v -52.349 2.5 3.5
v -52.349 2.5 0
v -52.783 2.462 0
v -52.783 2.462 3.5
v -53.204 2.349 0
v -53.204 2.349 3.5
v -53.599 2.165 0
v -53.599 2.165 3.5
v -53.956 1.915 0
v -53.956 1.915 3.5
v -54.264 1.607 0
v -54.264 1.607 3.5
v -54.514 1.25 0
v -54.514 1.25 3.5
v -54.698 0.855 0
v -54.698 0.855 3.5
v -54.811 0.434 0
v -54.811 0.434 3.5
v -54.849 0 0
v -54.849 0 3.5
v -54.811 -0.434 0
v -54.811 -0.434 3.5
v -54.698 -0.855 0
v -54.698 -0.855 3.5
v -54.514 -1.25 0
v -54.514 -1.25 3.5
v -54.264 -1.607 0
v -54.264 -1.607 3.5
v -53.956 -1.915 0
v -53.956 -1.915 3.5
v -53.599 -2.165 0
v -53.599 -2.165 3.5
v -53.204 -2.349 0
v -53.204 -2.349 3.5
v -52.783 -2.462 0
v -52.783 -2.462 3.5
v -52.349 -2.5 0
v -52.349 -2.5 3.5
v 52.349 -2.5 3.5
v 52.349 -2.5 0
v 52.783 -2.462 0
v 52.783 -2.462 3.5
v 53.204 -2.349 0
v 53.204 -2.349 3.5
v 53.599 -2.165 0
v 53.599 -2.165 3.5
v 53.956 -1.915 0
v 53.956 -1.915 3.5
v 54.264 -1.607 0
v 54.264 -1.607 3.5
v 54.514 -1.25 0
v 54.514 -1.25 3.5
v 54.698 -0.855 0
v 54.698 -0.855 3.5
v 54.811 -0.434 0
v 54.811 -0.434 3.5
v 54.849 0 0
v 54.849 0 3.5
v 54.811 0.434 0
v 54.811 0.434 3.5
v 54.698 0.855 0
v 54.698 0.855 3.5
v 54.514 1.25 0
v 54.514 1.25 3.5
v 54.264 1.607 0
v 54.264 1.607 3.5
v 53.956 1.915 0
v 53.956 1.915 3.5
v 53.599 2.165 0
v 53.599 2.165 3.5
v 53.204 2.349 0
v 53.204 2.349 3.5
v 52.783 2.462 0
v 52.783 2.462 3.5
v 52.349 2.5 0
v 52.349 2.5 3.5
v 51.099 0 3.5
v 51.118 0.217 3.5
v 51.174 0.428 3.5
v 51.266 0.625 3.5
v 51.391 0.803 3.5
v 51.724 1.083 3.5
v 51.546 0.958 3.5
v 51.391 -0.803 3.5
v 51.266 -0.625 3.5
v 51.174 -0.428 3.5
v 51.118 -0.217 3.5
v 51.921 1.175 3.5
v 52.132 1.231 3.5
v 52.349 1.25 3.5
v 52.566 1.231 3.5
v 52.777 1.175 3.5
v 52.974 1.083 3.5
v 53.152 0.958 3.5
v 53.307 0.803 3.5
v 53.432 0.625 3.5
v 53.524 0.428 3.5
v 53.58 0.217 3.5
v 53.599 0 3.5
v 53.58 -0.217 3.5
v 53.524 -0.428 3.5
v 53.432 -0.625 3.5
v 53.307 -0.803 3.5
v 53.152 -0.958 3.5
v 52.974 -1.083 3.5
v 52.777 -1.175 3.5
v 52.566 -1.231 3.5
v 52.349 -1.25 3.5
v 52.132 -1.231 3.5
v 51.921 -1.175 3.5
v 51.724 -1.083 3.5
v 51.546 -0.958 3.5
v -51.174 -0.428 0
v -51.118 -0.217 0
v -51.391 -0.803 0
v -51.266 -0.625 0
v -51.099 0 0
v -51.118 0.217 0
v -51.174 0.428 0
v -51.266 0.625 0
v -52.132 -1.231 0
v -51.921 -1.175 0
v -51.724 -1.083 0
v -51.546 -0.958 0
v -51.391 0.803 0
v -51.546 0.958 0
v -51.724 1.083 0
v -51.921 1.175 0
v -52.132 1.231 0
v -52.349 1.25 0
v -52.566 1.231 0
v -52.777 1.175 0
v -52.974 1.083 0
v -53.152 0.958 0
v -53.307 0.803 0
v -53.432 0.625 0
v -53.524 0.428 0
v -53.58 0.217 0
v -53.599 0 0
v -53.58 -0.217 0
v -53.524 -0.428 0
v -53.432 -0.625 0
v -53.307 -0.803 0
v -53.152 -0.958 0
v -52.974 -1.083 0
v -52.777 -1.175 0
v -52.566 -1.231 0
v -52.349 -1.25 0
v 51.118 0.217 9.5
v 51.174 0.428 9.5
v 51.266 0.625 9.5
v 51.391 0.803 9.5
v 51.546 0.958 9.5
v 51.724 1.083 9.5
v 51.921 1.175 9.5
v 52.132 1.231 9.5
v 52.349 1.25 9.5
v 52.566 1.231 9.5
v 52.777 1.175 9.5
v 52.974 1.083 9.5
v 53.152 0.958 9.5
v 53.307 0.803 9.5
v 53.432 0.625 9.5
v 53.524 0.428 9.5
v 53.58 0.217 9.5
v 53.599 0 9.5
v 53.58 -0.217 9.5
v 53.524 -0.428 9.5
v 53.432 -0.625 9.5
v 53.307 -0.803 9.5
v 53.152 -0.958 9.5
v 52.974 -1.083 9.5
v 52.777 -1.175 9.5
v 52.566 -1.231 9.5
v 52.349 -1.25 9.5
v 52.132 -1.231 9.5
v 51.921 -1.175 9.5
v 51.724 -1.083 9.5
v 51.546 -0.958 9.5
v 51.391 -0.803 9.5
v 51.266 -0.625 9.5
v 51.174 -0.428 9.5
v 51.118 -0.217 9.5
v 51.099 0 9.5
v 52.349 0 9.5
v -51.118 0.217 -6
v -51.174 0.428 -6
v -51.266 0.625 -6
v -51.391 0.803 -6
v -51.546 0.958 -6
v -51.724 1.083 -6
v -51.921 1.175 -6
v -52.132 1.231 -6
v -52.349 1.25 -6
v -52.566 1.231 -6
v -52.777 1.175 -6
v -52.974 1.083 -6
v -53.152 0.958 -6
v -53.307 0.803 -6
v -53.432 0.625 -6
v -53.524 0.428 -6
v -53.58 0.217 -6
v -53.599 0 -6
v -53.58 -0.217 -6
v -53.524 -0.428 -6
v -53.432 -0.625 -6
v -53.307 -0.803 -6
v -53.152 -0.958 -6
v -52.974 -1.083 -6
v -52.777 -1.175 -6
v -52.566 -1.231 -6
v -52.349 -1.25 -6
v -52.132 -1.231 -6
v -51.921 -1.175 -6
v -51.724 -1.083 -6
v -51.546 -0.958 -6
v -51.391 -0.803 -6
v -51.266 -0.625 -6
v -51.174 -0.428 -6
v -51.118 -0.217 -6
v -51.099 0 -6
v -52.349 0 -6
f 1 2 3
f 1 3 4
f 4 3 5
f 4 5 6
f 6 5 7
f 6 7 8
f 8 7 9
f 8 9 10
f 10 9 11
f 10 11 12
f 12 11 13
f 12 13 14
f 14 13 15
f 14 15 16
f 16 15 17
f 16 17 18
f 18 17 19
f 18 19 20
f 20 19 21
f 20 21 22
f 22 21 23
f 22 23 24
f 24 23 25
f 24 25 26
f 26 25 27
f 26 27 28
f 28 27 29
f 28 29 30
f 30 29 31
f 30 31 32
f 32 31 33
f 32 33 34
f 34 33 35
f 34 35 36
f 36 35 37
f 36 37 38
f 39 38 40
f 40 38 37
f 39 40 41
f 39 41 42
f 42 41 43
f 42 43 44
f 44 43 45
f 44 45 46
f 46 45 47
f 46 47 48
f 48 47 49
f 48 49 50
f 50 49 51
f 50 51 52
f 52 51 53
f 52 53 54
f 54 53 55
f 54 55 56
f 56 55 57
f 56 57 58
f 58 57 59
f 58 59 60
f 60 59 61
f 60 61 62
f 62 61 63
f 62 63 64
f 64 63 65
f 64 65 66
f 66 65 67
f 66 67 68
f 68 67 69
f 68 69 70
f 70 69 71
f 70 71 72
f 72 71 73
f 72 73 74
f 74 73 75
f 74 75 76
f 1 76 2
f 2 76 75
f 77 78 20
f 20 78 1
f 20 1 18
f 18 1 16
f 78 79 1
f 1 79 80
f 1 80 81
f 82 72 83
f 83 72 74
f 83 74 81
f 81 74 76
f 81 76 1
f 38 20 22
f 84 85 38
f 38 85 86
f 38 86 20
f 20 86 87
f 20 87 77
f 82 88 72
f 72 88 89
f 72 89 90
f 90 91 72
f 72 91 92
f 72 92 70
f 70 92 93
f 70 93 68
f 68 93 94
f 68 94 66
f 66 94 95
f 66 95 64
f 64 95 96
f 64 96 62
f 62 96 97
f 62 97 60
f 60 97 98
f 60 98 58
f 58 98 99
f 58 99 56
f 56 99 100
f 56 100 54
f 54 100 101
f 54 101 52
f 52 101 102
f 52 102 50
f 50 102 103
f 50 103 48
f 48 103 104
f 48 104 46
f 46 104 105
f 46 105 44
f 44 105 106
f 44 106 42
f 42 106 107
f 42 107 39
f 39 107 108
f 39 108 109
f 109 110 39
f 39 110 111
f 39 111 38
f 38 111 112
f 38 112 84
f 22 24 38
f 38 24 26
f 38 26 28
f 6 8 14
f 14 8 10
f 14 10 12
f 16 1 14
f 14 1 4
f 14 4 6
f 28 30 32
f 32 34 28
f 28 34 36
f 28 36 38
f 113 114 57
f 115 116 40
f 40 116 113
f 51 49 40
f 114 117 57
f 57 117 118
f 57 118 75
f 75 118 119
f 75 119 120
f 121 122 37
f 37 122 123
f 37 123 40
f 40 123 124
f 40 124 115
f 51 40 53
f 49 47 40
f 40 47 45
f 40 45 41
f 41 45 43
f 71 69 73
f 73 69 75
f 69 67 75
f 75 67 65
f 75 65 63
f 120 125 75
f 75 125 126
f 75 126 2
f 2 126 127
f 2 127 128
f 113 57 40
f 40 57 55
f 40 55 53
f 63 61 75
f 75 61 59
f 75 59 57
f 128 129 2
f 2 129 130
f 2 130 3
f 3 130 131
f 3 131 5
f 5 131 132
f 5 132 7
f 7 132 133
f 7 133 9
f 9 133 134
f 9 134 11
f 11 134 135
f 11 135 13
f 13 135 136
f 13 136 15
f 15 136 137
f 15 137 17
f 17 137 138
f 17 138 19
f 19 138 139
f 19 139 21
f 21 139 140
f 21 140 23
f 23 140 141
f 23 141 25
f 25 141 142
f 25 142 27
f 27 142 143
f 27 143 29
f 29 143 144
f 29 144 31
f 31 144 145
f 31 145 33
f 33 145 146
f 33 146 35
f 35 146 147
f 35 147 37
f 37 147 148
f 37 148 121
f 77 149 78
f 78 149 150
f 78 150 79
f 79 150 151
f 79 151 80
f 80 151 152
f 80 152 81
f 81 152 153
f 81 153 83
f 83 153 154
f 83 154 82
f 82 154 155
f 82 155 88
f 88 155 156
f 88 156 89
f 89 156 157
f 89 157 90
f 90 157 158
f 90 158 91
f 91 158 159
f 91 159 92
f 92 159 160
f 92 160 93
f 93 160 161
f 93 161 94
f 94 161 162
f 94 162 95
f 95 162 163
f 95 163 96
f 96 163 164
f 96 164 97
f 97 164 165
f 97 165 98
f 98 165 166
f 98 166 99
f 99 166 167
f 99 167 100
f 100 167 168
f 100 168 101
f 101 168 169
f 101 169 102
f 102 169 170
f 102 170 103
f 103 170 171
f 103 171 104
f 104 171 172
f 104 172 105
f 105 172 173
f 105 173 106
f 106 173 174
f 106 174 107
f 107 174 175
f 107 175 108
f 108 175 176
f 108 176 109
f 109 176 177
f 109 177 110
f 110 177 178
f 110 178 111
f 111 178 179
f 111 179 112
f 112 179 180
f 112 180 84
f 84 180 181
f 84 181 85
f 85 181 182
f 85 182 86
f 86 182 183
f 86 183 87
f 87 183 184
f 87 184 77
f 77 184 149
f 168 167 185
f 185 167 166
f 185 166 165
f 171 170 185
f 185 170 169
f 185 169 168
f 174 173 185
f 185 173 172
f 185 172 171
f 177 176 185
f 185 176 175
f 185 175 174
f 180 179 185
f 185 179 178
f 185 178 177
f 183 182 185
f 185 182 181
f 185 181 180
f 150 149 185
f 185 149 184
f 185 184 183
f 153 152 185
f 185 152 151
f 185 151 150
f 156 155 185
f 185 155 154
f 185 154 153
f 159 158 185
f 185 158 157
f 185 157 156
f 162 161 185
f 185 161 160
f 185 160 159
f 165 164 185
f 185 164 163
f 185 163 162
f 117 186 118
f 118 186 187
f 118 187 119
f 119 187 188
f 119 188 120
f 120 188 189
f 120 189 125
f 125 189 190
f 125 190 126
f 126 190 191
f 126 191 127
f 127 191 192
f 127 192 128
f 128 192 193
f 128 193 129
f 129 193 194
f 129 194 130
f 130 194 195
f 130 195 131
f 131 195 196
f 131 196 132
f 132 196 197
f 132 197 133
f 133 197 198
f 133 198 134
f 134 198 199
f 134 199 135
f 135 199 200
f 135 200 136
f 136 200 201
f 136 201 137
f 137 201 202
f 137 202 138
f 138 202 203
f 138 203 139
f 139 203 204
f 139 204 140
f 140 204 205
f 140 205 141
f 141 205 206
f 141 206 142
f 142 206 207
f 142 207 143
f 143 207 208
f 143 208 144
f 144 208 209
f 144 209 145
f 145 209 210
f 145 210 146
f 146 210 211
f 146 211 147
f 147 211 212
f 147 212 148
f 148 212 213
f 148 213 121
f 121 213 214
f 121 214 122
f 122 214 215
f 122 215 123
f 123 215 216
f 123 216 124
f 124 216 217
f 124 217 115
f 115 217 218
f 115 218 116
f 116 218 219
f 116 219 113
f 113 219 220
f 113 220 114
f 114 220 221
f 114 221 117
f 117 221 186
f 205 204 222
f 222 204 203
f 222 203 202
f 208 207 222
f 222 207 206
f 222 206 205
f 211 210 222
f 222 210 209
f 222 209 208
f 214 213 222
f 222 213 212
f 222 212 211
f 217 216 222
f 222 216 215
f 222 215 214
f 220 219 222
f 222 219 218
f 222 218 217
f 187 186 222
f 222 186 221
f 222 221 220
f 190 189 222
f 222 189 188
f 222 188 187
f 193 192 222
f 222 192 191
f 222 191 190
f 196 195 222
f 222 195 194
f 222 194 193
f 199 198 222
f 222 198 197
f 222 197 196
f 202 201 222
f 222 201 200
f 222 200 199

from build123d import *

# Parameters (mm, degrees)
BOSS_EXTRUDE1_DEPTH = 3.5
SKETCH2_R           = 1.25
BOSS_EXTRUDE2_DEPTH = 6
SKETCH3_R           = 1.25
BOSS_EXTRUDE3_DEPTH = 6


with BuildPart() as part:
    # Sketch1 → Boss-Extrude1 (new body)
    with BuildSketch(Plane.XY):
        with BuildLine():
            Line((-52.349, 2.5), (52.349, 2.5))
            ThreePointArc((52.349, 2.5), (54.849, 0), (52.349, -2.5))
            Line((52.349, -2.5), (-52.349, -2.5))
            ThreePointArc((-52.349, -2.5), (-54.849, 0), (-52.349, 2.5))
        make_face()
    extrude(amount=BOSS_EXTRUDE1_DEPTH)

    # Sketch2 → Boss-Extrude2 (add)
    with BuildSketch(Plane.XY.offset(3.5)):
        with Locations((52.349, 0)):
            Circle(SKETCH2_R)
    extrude(amount=BOSS_EXTRUDE2_DEPTH)

    # Sketch3 → Boss-Extrude3 (add)
    with BuildSketch(Plane(origin=(0, 0, 0), x_dir=(-1, 0, 0), z_dir=(0, 0, -1))):
        with Locations(Location((52.349, 0, 0), (0, 0, 180))):
            Circle(SKETCH3_R)
    extrude(amount=BOSS_EXTRUDE3_DEPTH)


solid = part.part
